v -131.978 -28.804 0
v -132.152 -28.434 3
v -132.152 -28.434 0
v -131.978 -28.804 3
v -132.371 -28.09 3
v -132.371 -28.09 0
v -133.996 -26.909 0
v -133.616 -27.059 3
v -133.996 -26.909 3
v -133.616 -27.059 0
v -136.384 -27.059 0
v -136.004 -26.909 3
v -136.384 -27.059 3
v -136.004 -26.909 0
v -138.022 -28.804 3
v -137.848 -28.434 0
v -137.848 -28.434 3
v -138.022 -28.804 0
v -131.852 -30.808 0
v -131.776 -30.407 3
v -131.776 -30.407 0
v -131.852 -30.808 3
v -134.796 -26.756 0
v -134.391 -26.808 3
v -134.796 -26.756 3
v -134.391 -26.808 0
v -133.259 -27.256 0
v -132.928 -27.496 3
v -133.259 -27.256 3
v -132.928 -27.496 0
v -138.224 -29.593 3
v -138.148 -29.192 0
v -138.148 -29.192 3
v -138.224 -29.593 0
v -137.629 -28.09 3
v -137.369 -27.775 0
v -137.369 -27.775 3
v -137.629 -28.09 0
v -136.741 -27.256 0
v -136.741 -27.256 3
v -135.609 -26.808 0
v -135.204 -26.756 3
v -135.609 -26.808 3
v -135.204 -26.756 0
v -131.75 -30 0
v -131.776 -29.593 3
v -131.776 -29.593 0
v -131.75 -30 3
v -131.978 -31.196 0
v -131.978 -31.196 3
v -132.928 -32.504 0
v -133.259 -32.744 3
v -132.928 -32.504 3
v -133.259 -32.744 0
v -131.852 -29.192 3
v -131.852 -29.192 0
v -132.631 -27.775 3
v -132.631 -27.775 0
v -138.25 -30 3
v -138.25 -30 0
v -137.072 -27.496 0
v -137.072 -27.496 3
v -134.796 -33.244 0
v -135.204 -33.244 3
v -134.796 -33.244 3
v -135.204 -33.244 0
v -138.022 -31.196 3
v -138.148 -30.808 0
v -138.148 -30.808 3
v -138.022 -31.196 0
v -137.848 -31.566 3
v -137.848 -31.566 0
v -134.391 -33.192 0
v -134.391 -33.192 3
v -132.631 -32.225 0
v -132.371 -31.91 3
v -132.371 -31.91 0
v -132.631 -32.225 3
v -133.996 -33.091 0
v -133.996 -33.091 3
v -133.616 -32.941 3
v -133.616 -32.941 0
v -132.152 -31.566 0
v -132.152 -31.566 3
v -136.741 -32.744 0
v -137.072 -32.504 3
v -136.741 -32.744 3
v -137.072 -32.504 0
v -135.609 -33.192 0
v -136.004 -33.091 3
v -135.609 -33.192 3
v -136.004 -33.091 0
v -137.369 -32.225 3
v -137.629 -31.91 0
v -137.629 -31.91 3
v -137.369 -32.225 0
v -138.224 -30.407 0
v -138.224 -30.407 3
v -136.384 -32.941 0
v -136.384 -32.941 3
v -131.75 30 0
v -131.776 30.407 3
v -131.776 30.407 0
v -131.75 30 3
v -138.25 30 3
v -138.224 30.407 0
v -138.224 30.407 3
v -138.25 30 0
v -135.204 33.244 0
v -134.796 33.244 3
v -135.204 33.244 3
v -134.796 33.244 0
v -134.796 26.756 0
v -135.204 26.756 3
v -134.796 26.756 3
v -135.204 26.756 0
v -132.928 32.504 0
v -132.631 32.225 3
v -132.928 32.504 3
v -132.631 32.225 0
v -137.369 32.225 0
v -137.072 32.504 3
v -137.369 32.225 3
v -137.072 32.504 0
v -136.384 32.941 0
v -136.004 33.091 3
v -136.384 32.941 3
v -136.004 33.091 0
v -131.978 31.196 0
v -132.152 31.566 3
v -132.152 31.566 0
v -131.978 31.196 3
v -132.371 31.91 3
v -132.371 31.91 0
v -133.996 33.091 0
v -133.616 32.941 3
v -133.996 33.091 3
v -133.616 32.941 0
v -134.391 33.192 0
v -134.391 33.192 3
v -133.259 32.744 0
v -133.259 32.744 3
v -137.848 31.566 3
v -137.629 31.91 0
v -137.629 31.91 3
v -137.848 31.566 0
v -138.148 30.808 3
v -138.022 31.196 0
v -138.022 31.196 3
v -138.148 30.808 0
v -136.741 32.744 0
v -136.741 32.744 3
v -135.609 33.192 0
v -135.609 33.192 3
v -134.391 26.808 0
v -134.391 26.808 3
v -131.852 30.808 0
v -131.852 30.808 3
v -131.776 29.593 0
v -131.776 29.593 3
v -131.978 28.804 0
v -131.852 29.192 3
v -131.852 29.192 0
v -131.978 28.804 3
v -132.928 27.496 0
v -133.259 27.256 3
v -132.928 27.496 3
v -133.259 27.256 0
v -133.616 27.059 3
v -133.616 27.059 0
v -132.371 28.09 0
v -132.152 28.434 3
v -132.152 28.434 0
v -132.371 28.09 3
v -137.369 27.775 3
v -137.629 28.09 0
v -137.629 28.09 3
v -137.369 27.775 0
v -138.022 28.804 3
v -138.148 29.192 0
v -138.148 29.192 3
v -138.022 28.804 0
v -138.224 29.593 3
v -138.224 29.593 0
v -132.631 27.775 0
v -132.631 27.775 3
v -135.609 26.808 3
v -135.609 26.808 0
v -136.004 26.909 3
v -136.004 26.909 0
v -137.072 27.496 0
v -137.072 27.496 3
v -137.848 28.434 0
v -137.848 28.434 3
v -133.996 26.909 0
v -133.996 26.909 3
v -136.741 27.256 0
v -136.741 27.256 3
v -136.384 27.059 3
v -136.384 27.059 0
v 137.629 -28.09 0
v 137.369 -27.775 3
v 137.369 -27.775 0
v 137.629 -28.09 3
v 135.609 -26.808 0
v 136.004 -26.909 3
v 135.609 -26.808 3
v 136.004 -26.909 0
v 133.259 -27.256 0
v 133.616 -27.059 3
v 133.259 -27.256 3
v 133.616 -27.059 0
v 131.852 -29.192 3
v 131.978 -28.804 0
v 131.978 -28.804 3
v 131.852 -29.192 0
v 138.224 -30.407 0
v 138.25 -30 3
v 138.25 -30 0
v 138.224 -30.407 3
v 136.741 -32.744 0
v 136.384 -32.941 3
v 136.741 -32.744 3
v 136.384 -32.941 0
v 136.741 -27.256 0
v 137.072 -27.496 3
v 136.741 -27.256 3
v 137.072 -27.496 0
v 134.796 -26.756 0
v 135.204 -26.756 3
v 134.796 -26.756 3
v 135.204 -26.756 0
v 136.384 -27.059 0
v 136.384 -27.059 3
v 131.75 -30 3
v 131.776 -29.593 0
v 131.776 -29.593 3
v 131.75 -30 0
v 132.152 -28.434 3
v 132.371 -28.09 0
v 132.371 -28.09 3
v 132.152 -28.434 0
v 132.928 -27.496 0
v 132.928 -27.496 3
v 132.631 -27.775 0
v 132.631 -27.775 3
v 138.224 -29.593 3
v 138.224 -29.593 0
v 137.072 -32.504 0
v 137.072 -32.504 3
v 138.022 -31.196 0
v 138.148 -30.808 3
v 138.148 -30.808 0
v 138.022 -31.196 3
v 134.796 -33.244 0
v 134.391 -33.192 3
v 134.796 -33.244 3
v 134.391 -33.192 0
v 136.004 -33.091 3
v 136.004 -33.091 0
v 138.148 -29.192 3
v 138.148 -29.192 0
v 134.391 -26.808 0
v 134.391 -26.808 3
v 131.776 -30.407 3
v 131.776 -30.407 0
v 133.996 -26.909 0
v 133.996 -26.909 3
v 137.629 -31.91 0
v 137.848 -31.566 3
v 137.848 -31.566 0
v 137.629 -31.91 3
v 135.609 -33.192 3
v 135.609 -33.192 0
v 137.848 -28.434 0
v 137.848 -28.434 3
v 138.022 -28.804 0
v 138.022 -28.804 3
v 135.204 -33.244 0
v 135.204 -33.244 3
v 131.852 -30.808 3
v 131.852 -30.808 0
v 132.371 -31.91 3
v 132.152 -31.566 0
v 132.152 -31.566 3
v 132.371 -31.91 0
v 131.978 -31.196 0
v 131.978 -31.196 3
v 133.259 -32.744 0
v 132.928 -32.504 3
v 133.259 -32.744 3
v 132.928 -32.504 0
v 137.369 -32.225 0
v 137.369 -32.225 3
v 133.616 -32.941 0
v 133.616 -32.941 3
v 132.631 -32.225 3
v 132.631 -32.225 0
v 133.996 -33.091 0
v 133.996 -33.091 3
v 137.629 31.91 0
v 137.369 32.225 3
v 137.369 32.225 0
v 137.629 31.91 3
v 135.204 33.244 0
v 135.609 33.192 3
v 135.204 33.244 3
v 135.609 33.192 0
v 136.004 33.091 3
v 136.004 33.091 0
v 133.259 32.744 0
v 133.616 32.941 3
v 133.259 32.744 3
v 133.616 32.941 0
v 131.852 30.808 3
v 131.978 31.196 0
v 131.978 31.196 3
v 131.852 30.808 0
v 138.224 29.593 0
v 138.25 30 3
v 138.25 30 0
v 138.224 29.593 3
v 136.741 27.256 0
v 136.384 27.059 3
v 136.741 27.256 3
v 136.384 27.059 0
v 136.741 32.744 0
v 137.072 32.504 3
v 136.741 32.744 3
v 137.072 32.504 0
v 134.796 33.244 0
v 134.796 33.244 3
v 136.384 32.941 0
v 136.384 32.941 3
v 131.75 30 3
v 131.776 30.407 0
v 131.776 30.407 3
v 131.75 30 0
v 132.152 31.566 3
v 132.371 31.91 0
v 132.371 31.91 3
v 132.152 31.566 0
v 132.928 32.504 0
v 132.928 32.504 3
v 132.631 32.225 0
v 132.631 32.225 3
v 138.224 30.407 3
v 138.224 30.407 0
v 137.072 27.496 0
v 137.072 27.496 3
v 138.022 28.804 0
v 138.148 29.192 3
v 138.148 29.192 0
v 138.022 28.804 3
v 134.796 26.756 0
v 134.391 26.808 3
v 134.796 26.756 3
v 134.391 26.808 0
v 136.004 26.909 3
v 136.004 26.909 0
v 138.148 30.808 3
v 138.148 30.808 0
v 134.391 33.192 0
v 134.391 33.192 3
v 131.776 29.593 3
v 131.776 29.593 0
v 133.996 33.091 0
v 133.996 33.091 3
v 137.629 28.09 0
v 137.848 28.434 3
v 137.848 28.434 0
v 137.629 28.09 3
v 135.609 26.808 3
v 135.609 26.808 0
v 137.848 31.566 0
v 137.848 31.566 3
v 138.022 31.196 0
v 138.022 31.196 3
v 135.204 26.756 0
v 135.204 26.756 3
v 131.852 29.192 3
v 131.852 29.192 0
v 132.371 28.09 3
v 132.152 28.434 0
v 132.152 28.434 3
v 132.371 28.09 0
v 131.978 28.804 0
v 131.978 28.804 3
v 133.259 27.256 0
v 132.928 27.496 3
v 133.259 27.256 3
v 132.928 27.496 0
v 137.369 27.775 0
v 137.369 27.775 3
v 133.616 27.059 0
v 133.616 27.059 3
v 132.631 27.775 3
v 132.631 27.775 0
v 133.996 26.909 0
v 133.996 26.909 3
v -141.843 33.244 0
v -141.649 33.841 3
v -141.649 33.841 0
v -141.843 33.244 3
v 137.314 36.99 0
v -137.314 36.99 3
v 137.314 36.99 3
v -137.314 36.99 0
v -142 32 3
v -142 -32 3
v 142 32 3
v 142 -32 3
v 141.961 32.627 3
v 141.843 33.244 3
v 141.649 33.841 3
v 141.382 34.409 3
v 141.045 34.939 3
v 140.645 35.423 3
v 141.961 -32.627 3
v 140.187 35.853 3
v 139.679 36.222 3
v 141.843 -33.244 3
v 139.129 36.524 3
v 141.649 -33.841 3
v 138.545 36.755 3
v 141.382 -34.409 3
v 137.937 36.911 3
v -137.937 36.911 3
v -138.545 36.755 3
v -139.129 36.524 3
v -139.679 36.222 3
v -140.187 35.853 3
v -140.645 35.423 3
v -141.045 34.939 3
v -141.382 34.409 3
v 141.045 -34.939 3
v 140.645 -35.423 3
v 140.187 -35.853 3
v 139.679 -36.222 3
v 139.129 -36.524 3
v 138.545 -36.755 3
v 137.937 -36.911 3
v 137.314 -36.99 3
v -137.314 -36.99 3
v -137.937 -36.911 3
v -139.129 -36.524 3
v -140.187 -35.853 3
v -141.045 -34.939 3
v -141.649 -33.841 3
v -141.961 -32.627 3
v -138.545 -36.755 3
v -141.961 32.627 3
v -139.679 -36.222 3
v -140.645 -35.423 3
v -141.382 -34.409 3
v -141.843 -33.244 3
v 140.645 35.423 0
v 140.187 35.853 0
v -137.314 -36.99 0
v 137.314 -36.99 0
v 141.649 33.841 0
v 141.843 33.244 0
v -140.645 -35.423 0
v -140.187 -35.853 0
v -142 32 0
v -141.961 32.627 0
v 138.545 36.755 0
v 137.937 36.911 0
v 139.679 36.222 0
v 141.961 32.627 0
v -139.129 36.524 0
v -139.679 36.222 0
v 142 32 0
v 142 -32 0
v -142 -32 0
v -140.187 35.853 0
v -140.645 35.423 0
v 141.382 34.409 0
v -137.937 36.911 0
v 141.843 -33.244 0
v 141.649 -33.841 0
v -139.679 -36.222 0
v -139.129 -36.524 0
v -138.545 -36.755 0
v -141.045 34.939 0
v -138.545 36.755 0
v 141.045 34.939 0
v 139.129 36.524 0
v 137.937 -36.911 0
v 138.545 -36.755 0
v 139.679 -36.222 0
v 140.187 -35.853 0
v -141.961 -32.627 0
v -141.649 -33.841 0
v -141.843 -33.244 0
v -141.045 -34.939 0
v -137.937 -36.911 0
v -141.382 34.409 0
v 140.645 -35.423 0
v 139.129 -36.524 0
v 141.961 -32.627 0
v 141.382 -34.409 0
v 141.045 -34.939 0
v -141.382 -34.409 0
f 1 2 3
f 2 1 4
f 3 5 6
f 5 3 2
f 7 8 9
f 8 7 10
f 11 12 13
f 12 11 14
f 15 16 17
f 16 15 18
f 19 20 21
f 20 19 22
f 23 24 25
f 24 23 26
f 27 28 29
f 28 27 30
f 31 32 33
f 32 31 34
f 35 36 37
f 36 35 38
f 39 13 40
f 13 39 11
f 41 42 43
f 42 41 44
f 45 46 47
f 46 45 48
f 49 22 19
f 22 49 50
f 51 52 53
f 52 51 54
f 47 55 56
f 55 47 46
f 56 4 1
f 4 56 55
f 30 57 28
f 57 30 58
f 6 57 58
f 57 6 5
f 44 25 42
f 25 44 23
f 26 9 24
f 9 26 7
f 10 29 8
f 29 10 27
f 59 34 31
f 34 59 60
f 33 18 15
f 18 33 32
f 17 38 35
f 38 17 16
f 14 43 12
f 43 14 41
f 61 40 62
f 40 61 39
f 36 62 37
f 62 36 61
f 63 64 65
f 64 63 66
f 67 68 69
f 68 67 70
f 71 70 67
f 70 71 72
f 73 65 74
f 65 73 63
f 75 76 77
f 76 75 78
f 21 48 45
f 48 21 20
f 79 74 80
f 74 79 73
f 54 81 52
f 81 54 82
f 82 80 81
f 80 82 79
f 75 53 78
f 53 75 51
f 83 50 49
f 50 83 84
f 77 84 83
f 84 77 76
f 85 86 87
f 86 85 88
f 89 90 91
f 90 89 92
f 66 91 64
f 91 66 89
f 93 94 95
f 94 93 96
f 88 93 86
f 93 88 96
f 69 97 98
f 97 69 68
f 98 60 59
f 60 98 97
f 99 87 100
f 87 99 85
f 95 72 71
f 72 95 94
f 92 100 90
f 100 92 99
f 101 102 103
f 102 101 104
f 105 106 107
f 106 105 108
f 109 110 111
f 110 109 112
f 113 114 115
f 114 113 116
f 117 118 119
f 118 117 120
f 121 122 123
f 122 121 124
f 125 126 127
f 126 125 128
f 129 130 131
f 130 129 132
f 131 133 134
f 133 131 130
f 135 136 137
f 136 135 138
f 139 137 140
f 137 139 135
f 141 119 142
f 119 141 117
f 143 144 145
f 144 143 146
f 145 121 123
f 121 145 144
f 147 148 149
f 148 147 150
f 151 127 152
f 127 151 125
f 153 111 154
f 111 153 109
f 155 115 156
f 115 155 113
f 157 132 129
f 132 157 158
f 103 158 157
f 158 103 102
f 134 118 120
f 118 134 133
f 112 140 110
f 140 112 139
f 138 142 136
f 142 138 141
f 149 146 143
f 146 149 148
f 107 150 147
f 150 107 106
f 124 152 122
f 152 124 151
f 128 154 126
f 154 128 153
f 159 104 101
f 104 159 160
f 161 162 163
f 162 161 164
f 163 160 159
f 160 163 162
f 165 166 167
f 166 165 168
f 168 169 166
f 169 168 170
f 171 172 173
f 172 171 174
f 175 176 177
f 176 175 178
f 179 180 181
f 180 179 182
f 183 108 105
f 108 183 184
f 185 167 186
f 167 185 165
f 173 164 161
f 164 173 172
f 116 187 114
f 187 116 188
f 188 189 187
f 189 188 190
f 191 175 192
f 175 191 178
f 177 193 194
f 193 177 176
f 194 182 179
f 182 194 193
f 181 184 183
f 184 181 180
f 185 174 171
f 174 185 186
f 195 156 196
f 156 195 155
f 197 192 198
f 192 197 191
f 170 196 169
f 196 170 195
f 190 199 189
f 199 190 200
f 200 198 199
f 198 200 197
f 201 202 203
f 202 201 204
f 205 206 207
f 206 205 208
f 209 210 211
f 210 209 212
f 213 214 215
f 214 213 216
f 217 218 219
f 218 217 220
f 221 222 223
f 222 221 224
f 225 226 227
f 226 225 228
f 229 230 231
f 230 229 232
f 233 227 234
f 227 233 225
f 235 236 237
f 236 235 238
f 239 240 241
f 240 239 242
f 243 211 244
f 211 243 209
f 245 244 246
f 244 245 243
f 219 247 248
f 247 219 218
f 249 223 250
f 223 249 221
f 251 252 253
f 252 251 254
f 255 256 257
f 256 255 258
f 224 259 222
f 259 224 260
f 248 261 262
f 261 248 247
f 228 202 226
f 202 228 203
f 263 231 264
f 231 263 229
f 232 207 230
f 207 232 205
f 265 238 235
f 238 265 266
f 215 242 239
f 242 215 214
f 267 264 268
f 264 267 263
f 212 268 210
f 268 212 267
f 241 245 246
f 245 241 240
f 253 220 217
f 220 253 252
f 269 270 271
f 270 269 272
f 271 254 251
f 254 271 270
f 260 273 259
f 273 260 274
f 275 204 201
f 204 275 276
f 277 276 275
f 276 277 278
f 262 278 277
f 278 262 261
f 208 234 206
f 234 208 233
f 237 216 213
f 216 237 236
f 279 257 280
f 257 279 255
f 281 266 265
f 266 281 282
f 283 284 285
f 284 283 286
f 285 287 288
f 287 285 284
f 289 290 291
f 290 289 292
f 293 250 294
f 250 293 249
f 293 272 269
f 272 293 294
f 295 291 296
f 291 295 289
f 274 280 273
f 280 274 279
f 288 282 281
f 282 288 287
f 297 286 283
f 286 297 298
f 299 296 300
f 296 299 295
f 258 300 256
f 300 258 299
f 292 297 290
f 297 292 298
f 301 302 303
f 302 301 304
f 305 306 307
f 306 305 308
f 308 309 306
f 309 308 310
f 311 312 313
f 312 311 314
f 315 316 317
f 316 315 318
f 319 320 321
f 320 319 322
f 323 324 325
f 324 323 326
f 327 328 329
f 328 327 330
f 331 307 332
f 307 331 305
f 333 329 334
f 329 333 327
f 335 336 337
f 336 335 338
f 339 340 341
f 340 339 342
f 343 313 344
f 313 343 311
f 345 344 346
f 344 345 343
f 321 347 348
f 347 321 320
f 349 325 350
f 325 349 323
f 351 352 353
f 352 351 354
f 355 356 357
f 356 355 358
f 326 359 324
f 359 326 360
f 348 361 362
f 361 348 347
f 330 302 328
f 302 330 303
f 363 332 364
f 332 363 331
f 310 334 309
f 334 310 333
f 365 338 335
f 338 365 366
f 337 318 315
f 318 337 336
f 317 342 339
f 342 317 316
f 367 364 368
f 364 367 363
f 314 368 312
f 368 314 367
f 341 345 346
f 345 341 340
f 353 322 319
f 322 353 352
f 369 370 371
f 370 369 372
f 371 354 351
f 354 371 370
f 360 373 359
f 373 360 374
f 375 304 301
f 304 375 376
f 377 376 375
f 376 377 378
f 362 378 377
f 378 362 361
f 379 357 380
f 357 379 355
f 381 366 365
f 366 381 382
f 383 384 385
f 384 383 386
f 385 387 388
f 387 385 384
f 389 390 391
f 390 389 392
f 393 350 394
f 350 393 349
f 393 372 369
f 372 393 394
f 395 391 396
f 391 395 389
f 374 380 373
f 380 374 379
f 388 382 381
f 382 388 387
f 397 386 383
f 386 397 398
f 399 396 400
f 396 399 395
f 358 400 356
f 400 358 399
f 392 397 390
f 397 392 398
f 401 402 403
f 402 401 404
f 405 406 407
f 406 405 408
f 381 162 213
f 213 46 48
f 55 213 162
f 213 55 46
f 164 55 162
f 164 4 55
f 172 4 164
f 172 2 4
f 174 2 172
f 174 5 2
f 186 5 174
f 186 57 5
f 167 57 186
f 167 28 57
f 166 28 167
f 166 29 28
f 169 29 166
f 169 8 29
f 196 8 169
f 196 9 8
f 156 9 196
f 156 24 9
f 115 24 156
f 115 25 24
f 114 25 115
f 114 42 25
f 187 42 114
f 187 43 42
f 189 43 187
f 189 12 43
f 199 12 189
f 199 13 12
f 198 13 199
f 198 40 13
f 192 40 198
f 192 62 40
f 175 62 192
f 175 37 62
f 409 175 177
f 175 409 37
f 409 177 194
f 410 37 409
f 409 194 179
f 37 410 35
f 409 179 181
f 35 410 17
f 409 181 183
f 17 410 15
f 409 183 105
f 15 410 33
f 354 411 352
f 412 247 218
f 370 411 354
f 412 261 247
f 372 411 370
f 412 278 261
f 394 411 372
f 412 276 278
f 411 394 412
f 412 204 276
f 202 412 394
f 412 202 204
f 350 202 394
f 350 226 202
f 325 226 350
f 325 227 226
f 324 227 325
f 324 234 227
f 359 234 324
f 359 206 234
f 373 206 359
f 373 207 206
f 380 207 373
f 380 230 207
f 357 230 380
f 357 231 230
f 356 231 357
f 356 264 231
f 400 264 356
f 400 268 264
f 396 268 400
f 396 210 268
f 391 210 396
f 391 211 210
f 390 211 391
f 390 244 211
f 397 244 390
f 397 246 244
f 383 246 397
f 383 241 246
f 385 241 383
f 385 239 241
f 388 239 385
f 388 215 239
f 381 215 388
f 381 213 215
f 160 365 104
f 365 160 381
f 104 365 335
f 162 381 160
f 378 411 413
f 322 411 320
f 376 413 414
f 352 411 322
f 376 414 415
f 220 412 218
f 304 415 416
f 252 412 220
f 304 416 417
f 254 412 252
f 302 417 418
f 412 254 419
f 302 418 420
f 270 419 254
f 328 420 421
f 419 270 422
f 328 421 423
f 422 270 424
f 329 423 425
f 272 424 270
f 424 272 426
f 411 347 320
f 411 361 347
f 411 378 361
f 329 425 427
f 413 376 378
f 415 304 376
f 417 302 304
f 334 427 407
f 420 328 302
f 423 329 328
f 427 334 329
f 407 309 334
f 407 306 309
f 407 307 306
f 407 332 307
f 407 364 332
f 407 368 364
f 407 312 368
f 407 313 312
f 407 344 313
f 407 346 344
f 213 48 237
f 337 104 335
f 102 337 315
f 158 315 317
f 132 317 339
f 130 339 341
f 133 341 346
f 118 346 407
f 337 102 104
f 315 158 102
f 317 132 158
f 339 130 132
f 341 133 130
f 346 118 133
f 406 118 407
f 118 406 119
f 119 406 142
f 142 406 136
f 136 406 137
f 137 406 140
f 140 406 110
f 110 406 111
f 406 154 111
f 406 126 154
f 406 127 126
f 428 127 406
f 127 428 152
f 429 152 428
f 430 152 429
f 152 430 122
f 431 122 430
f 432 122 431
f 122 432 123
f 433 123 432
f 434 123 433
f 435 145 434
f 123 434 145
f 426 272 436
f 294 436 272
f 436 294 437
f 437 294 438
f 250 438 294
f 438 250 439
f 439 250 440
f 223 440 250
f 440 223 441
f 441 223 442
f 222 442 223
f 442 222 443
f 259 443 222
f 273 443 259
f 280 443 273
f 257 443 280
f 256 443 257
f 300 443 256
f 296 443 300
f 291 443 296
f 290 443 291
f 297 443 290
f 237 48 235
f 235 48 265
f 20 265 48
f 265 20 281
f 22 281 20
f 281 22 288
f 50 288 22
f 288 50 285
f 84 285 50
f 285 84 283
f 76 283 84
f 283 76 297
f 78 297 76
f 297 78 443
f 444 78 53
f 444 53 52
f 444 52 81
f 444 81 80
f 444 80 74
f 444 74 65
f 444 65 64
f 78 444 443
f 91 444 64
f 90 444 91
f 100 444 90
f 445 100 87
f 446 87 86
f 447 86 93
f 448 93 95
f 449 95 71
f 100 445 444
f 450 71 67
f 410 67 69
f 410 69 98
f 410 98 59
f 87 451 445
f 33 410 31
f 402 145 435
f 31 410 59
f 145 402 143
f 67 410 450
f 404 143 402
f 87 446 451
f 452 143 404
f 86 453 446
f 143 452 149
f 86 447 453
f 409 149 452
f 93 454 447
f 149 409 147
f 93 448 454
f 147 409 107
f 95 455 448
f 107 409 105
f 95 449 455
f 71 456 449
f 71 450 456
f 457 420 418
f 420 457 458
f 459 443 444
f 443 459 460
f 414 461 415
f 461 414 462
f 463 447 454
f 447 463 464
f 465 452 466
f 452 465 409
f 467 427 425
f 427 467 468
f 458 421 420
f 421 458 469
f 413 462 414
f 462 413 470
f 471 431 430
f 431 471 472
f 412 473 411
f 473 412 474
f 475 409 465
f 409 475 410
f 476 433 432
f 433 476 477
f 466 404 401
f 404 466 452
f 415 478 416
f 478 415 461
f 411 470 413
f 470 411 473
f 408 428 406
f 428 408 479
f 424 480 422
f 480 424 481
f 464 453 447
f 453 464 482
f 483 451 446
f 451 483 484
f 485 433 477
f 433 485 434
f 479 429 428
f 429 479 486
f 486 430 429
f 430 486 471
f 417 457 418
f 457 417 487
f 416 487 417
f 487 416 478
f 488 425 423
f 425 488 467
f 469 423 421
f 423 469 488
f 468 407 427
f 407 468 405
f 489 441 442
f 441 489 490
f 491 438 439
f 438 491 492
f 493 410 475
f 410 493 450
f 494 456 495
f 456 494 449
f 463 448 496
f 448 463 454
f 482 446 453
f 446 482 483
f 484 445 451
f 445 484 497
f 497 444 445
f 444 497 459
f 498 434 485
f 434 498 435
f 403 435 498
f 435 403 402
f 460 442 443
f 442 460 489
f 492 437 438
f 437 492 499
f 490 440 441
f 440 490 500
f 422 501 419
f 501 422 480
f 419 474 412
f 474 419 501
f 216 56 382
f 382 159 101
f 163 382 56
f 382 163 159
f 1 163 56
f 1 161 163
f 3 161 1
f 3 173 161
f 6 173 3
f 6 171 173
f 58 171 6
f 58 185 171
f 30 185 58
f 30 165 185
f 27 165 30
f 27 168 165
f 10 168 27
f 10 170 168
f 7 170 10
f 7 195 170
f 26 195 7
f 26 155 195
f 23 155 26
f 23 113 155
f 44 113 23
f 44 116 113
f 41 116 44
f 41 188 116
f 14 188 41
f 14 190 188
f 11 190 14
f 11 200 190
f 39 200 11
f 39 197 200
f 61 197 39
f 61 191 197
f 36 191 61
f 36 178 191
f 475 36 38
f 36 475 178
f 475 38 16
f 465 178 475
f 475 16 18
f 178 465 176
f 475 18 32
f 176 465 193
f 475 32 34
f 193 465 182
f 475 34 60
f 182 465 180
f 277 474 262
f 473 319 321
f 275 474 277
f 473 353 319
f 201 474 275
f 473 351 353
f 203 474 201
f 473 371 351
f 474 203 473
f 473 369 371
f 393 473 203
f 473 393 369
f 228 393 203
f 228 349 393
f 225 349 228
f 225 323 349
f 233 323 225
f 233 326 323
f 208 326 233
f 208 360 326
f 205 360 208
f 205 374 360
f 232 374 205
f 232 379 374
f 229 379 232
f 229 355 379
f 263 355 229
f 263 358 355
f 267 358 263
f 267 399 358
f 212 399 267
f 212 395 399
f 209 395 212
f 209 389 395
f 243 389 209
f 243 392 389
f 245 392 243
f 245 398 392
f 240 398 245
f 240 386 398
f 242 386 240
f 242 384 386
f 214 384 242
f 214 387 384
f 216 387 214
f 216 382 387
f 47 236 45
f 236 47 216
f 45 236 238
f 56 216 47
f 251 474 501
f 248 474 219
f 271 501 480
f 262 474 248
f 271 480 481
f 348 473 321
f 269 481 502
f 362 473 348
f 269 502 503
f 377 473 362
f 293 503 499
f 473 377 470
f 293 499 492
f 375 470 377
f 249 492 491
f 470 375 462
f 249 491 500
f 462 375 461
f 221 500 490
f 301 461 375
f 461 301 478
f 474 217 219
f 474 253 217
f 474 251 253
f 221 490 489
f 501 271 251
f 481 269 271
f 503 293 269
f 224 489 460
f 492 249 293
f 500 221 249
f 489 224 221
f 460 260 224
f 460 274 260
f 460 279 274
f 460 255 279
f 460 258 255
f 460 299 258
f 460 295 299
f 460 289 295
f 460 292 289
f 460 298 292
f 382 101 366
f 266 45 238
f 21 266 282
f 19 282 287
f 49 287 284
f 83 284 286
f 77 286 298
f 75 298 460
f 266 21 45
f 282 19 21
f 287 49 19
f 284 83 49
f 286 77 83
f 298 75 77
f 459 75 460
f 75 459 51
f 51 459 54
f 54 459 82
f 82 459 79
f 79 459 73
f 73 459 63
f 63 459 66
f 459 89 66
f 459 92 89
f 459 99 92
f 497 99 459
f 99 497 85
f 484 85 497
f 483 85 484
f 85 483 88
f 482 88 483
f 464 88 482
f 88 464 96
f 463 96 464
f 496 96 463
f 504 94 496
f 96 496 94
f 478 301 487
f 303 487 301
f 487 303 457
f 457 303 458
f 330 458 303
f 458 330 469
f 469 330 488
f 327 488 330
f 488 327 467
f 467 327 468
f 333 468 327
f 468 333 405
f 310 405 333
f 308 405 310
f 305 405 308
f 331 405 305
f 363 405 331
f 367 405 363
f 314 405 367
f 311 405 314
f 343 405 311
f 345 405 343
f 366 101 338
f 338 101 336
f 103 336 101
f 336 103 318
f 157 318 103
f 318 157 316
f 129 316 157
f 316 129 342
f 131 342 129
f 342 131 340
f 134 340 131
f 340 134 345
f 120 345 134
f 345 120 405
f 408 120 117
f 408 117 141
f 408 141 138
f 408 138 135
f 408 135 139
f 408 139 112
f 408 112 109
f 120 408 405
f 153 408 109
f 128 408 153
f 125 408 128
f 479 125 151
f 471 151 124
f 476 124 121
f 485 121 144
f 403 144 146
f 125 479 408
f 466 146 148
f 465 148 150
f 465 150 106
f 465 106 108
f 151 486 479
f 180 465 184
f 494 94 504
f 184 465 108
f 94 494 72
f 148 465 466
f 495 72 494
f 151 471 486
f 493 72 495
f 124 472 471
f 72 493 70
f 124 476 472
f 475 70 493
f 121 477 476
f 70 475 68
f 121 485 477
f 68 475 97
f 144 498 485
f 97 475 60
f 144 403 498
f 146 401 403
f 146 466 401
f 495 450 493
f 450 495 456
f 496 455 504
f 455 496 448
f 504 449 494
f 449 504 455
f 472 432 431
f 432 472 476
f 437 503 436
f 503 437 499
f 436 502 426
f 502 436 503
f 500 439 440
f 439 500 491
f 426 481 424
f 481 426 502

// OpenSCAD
$fn = 50;


difference() {
	union() {
		hull() {
			translate(v = [-137.0000000000, 32.0000000000, 0]) {
				cylinder(h = 3, r = 5);
			}
			translate(v = [137.0000000000, 32.0000000000, 0]) {
				cylinder(h = 3, r = 5);
			}
			translate(v = [-137.0000000000, -32.0000000000, 0]) {
				cylinder(h = 3, r = 5);
			}
			translate(v = [137.0000000000, -32.0000000000, 0]) {
				cylinder(h = 3, r = 5);
			}
		}
	}
	union() {
		translate(v = [-135.0000000000, -30.0000000000, -100.0000000000]) {
			cylinder(h = 200, r = 3.2500000000);
		}
		translate(v = [-135.0000000000, 30.0000000000, -100.0000000000]) {
			cylinder(h = 200, r = 3.2500000000);
		}
		translate(v = [135.0000000000, -30.0000000000, -100.0000000000]) {
			cylinder(h = 200, r = 3.2500000000);
		}
		translate(v = [135.0000000000, 30.0000000000, -100.0000000000]) {
			cylinder(h = 200, r = 3.2500000000);
		}
	}
}
